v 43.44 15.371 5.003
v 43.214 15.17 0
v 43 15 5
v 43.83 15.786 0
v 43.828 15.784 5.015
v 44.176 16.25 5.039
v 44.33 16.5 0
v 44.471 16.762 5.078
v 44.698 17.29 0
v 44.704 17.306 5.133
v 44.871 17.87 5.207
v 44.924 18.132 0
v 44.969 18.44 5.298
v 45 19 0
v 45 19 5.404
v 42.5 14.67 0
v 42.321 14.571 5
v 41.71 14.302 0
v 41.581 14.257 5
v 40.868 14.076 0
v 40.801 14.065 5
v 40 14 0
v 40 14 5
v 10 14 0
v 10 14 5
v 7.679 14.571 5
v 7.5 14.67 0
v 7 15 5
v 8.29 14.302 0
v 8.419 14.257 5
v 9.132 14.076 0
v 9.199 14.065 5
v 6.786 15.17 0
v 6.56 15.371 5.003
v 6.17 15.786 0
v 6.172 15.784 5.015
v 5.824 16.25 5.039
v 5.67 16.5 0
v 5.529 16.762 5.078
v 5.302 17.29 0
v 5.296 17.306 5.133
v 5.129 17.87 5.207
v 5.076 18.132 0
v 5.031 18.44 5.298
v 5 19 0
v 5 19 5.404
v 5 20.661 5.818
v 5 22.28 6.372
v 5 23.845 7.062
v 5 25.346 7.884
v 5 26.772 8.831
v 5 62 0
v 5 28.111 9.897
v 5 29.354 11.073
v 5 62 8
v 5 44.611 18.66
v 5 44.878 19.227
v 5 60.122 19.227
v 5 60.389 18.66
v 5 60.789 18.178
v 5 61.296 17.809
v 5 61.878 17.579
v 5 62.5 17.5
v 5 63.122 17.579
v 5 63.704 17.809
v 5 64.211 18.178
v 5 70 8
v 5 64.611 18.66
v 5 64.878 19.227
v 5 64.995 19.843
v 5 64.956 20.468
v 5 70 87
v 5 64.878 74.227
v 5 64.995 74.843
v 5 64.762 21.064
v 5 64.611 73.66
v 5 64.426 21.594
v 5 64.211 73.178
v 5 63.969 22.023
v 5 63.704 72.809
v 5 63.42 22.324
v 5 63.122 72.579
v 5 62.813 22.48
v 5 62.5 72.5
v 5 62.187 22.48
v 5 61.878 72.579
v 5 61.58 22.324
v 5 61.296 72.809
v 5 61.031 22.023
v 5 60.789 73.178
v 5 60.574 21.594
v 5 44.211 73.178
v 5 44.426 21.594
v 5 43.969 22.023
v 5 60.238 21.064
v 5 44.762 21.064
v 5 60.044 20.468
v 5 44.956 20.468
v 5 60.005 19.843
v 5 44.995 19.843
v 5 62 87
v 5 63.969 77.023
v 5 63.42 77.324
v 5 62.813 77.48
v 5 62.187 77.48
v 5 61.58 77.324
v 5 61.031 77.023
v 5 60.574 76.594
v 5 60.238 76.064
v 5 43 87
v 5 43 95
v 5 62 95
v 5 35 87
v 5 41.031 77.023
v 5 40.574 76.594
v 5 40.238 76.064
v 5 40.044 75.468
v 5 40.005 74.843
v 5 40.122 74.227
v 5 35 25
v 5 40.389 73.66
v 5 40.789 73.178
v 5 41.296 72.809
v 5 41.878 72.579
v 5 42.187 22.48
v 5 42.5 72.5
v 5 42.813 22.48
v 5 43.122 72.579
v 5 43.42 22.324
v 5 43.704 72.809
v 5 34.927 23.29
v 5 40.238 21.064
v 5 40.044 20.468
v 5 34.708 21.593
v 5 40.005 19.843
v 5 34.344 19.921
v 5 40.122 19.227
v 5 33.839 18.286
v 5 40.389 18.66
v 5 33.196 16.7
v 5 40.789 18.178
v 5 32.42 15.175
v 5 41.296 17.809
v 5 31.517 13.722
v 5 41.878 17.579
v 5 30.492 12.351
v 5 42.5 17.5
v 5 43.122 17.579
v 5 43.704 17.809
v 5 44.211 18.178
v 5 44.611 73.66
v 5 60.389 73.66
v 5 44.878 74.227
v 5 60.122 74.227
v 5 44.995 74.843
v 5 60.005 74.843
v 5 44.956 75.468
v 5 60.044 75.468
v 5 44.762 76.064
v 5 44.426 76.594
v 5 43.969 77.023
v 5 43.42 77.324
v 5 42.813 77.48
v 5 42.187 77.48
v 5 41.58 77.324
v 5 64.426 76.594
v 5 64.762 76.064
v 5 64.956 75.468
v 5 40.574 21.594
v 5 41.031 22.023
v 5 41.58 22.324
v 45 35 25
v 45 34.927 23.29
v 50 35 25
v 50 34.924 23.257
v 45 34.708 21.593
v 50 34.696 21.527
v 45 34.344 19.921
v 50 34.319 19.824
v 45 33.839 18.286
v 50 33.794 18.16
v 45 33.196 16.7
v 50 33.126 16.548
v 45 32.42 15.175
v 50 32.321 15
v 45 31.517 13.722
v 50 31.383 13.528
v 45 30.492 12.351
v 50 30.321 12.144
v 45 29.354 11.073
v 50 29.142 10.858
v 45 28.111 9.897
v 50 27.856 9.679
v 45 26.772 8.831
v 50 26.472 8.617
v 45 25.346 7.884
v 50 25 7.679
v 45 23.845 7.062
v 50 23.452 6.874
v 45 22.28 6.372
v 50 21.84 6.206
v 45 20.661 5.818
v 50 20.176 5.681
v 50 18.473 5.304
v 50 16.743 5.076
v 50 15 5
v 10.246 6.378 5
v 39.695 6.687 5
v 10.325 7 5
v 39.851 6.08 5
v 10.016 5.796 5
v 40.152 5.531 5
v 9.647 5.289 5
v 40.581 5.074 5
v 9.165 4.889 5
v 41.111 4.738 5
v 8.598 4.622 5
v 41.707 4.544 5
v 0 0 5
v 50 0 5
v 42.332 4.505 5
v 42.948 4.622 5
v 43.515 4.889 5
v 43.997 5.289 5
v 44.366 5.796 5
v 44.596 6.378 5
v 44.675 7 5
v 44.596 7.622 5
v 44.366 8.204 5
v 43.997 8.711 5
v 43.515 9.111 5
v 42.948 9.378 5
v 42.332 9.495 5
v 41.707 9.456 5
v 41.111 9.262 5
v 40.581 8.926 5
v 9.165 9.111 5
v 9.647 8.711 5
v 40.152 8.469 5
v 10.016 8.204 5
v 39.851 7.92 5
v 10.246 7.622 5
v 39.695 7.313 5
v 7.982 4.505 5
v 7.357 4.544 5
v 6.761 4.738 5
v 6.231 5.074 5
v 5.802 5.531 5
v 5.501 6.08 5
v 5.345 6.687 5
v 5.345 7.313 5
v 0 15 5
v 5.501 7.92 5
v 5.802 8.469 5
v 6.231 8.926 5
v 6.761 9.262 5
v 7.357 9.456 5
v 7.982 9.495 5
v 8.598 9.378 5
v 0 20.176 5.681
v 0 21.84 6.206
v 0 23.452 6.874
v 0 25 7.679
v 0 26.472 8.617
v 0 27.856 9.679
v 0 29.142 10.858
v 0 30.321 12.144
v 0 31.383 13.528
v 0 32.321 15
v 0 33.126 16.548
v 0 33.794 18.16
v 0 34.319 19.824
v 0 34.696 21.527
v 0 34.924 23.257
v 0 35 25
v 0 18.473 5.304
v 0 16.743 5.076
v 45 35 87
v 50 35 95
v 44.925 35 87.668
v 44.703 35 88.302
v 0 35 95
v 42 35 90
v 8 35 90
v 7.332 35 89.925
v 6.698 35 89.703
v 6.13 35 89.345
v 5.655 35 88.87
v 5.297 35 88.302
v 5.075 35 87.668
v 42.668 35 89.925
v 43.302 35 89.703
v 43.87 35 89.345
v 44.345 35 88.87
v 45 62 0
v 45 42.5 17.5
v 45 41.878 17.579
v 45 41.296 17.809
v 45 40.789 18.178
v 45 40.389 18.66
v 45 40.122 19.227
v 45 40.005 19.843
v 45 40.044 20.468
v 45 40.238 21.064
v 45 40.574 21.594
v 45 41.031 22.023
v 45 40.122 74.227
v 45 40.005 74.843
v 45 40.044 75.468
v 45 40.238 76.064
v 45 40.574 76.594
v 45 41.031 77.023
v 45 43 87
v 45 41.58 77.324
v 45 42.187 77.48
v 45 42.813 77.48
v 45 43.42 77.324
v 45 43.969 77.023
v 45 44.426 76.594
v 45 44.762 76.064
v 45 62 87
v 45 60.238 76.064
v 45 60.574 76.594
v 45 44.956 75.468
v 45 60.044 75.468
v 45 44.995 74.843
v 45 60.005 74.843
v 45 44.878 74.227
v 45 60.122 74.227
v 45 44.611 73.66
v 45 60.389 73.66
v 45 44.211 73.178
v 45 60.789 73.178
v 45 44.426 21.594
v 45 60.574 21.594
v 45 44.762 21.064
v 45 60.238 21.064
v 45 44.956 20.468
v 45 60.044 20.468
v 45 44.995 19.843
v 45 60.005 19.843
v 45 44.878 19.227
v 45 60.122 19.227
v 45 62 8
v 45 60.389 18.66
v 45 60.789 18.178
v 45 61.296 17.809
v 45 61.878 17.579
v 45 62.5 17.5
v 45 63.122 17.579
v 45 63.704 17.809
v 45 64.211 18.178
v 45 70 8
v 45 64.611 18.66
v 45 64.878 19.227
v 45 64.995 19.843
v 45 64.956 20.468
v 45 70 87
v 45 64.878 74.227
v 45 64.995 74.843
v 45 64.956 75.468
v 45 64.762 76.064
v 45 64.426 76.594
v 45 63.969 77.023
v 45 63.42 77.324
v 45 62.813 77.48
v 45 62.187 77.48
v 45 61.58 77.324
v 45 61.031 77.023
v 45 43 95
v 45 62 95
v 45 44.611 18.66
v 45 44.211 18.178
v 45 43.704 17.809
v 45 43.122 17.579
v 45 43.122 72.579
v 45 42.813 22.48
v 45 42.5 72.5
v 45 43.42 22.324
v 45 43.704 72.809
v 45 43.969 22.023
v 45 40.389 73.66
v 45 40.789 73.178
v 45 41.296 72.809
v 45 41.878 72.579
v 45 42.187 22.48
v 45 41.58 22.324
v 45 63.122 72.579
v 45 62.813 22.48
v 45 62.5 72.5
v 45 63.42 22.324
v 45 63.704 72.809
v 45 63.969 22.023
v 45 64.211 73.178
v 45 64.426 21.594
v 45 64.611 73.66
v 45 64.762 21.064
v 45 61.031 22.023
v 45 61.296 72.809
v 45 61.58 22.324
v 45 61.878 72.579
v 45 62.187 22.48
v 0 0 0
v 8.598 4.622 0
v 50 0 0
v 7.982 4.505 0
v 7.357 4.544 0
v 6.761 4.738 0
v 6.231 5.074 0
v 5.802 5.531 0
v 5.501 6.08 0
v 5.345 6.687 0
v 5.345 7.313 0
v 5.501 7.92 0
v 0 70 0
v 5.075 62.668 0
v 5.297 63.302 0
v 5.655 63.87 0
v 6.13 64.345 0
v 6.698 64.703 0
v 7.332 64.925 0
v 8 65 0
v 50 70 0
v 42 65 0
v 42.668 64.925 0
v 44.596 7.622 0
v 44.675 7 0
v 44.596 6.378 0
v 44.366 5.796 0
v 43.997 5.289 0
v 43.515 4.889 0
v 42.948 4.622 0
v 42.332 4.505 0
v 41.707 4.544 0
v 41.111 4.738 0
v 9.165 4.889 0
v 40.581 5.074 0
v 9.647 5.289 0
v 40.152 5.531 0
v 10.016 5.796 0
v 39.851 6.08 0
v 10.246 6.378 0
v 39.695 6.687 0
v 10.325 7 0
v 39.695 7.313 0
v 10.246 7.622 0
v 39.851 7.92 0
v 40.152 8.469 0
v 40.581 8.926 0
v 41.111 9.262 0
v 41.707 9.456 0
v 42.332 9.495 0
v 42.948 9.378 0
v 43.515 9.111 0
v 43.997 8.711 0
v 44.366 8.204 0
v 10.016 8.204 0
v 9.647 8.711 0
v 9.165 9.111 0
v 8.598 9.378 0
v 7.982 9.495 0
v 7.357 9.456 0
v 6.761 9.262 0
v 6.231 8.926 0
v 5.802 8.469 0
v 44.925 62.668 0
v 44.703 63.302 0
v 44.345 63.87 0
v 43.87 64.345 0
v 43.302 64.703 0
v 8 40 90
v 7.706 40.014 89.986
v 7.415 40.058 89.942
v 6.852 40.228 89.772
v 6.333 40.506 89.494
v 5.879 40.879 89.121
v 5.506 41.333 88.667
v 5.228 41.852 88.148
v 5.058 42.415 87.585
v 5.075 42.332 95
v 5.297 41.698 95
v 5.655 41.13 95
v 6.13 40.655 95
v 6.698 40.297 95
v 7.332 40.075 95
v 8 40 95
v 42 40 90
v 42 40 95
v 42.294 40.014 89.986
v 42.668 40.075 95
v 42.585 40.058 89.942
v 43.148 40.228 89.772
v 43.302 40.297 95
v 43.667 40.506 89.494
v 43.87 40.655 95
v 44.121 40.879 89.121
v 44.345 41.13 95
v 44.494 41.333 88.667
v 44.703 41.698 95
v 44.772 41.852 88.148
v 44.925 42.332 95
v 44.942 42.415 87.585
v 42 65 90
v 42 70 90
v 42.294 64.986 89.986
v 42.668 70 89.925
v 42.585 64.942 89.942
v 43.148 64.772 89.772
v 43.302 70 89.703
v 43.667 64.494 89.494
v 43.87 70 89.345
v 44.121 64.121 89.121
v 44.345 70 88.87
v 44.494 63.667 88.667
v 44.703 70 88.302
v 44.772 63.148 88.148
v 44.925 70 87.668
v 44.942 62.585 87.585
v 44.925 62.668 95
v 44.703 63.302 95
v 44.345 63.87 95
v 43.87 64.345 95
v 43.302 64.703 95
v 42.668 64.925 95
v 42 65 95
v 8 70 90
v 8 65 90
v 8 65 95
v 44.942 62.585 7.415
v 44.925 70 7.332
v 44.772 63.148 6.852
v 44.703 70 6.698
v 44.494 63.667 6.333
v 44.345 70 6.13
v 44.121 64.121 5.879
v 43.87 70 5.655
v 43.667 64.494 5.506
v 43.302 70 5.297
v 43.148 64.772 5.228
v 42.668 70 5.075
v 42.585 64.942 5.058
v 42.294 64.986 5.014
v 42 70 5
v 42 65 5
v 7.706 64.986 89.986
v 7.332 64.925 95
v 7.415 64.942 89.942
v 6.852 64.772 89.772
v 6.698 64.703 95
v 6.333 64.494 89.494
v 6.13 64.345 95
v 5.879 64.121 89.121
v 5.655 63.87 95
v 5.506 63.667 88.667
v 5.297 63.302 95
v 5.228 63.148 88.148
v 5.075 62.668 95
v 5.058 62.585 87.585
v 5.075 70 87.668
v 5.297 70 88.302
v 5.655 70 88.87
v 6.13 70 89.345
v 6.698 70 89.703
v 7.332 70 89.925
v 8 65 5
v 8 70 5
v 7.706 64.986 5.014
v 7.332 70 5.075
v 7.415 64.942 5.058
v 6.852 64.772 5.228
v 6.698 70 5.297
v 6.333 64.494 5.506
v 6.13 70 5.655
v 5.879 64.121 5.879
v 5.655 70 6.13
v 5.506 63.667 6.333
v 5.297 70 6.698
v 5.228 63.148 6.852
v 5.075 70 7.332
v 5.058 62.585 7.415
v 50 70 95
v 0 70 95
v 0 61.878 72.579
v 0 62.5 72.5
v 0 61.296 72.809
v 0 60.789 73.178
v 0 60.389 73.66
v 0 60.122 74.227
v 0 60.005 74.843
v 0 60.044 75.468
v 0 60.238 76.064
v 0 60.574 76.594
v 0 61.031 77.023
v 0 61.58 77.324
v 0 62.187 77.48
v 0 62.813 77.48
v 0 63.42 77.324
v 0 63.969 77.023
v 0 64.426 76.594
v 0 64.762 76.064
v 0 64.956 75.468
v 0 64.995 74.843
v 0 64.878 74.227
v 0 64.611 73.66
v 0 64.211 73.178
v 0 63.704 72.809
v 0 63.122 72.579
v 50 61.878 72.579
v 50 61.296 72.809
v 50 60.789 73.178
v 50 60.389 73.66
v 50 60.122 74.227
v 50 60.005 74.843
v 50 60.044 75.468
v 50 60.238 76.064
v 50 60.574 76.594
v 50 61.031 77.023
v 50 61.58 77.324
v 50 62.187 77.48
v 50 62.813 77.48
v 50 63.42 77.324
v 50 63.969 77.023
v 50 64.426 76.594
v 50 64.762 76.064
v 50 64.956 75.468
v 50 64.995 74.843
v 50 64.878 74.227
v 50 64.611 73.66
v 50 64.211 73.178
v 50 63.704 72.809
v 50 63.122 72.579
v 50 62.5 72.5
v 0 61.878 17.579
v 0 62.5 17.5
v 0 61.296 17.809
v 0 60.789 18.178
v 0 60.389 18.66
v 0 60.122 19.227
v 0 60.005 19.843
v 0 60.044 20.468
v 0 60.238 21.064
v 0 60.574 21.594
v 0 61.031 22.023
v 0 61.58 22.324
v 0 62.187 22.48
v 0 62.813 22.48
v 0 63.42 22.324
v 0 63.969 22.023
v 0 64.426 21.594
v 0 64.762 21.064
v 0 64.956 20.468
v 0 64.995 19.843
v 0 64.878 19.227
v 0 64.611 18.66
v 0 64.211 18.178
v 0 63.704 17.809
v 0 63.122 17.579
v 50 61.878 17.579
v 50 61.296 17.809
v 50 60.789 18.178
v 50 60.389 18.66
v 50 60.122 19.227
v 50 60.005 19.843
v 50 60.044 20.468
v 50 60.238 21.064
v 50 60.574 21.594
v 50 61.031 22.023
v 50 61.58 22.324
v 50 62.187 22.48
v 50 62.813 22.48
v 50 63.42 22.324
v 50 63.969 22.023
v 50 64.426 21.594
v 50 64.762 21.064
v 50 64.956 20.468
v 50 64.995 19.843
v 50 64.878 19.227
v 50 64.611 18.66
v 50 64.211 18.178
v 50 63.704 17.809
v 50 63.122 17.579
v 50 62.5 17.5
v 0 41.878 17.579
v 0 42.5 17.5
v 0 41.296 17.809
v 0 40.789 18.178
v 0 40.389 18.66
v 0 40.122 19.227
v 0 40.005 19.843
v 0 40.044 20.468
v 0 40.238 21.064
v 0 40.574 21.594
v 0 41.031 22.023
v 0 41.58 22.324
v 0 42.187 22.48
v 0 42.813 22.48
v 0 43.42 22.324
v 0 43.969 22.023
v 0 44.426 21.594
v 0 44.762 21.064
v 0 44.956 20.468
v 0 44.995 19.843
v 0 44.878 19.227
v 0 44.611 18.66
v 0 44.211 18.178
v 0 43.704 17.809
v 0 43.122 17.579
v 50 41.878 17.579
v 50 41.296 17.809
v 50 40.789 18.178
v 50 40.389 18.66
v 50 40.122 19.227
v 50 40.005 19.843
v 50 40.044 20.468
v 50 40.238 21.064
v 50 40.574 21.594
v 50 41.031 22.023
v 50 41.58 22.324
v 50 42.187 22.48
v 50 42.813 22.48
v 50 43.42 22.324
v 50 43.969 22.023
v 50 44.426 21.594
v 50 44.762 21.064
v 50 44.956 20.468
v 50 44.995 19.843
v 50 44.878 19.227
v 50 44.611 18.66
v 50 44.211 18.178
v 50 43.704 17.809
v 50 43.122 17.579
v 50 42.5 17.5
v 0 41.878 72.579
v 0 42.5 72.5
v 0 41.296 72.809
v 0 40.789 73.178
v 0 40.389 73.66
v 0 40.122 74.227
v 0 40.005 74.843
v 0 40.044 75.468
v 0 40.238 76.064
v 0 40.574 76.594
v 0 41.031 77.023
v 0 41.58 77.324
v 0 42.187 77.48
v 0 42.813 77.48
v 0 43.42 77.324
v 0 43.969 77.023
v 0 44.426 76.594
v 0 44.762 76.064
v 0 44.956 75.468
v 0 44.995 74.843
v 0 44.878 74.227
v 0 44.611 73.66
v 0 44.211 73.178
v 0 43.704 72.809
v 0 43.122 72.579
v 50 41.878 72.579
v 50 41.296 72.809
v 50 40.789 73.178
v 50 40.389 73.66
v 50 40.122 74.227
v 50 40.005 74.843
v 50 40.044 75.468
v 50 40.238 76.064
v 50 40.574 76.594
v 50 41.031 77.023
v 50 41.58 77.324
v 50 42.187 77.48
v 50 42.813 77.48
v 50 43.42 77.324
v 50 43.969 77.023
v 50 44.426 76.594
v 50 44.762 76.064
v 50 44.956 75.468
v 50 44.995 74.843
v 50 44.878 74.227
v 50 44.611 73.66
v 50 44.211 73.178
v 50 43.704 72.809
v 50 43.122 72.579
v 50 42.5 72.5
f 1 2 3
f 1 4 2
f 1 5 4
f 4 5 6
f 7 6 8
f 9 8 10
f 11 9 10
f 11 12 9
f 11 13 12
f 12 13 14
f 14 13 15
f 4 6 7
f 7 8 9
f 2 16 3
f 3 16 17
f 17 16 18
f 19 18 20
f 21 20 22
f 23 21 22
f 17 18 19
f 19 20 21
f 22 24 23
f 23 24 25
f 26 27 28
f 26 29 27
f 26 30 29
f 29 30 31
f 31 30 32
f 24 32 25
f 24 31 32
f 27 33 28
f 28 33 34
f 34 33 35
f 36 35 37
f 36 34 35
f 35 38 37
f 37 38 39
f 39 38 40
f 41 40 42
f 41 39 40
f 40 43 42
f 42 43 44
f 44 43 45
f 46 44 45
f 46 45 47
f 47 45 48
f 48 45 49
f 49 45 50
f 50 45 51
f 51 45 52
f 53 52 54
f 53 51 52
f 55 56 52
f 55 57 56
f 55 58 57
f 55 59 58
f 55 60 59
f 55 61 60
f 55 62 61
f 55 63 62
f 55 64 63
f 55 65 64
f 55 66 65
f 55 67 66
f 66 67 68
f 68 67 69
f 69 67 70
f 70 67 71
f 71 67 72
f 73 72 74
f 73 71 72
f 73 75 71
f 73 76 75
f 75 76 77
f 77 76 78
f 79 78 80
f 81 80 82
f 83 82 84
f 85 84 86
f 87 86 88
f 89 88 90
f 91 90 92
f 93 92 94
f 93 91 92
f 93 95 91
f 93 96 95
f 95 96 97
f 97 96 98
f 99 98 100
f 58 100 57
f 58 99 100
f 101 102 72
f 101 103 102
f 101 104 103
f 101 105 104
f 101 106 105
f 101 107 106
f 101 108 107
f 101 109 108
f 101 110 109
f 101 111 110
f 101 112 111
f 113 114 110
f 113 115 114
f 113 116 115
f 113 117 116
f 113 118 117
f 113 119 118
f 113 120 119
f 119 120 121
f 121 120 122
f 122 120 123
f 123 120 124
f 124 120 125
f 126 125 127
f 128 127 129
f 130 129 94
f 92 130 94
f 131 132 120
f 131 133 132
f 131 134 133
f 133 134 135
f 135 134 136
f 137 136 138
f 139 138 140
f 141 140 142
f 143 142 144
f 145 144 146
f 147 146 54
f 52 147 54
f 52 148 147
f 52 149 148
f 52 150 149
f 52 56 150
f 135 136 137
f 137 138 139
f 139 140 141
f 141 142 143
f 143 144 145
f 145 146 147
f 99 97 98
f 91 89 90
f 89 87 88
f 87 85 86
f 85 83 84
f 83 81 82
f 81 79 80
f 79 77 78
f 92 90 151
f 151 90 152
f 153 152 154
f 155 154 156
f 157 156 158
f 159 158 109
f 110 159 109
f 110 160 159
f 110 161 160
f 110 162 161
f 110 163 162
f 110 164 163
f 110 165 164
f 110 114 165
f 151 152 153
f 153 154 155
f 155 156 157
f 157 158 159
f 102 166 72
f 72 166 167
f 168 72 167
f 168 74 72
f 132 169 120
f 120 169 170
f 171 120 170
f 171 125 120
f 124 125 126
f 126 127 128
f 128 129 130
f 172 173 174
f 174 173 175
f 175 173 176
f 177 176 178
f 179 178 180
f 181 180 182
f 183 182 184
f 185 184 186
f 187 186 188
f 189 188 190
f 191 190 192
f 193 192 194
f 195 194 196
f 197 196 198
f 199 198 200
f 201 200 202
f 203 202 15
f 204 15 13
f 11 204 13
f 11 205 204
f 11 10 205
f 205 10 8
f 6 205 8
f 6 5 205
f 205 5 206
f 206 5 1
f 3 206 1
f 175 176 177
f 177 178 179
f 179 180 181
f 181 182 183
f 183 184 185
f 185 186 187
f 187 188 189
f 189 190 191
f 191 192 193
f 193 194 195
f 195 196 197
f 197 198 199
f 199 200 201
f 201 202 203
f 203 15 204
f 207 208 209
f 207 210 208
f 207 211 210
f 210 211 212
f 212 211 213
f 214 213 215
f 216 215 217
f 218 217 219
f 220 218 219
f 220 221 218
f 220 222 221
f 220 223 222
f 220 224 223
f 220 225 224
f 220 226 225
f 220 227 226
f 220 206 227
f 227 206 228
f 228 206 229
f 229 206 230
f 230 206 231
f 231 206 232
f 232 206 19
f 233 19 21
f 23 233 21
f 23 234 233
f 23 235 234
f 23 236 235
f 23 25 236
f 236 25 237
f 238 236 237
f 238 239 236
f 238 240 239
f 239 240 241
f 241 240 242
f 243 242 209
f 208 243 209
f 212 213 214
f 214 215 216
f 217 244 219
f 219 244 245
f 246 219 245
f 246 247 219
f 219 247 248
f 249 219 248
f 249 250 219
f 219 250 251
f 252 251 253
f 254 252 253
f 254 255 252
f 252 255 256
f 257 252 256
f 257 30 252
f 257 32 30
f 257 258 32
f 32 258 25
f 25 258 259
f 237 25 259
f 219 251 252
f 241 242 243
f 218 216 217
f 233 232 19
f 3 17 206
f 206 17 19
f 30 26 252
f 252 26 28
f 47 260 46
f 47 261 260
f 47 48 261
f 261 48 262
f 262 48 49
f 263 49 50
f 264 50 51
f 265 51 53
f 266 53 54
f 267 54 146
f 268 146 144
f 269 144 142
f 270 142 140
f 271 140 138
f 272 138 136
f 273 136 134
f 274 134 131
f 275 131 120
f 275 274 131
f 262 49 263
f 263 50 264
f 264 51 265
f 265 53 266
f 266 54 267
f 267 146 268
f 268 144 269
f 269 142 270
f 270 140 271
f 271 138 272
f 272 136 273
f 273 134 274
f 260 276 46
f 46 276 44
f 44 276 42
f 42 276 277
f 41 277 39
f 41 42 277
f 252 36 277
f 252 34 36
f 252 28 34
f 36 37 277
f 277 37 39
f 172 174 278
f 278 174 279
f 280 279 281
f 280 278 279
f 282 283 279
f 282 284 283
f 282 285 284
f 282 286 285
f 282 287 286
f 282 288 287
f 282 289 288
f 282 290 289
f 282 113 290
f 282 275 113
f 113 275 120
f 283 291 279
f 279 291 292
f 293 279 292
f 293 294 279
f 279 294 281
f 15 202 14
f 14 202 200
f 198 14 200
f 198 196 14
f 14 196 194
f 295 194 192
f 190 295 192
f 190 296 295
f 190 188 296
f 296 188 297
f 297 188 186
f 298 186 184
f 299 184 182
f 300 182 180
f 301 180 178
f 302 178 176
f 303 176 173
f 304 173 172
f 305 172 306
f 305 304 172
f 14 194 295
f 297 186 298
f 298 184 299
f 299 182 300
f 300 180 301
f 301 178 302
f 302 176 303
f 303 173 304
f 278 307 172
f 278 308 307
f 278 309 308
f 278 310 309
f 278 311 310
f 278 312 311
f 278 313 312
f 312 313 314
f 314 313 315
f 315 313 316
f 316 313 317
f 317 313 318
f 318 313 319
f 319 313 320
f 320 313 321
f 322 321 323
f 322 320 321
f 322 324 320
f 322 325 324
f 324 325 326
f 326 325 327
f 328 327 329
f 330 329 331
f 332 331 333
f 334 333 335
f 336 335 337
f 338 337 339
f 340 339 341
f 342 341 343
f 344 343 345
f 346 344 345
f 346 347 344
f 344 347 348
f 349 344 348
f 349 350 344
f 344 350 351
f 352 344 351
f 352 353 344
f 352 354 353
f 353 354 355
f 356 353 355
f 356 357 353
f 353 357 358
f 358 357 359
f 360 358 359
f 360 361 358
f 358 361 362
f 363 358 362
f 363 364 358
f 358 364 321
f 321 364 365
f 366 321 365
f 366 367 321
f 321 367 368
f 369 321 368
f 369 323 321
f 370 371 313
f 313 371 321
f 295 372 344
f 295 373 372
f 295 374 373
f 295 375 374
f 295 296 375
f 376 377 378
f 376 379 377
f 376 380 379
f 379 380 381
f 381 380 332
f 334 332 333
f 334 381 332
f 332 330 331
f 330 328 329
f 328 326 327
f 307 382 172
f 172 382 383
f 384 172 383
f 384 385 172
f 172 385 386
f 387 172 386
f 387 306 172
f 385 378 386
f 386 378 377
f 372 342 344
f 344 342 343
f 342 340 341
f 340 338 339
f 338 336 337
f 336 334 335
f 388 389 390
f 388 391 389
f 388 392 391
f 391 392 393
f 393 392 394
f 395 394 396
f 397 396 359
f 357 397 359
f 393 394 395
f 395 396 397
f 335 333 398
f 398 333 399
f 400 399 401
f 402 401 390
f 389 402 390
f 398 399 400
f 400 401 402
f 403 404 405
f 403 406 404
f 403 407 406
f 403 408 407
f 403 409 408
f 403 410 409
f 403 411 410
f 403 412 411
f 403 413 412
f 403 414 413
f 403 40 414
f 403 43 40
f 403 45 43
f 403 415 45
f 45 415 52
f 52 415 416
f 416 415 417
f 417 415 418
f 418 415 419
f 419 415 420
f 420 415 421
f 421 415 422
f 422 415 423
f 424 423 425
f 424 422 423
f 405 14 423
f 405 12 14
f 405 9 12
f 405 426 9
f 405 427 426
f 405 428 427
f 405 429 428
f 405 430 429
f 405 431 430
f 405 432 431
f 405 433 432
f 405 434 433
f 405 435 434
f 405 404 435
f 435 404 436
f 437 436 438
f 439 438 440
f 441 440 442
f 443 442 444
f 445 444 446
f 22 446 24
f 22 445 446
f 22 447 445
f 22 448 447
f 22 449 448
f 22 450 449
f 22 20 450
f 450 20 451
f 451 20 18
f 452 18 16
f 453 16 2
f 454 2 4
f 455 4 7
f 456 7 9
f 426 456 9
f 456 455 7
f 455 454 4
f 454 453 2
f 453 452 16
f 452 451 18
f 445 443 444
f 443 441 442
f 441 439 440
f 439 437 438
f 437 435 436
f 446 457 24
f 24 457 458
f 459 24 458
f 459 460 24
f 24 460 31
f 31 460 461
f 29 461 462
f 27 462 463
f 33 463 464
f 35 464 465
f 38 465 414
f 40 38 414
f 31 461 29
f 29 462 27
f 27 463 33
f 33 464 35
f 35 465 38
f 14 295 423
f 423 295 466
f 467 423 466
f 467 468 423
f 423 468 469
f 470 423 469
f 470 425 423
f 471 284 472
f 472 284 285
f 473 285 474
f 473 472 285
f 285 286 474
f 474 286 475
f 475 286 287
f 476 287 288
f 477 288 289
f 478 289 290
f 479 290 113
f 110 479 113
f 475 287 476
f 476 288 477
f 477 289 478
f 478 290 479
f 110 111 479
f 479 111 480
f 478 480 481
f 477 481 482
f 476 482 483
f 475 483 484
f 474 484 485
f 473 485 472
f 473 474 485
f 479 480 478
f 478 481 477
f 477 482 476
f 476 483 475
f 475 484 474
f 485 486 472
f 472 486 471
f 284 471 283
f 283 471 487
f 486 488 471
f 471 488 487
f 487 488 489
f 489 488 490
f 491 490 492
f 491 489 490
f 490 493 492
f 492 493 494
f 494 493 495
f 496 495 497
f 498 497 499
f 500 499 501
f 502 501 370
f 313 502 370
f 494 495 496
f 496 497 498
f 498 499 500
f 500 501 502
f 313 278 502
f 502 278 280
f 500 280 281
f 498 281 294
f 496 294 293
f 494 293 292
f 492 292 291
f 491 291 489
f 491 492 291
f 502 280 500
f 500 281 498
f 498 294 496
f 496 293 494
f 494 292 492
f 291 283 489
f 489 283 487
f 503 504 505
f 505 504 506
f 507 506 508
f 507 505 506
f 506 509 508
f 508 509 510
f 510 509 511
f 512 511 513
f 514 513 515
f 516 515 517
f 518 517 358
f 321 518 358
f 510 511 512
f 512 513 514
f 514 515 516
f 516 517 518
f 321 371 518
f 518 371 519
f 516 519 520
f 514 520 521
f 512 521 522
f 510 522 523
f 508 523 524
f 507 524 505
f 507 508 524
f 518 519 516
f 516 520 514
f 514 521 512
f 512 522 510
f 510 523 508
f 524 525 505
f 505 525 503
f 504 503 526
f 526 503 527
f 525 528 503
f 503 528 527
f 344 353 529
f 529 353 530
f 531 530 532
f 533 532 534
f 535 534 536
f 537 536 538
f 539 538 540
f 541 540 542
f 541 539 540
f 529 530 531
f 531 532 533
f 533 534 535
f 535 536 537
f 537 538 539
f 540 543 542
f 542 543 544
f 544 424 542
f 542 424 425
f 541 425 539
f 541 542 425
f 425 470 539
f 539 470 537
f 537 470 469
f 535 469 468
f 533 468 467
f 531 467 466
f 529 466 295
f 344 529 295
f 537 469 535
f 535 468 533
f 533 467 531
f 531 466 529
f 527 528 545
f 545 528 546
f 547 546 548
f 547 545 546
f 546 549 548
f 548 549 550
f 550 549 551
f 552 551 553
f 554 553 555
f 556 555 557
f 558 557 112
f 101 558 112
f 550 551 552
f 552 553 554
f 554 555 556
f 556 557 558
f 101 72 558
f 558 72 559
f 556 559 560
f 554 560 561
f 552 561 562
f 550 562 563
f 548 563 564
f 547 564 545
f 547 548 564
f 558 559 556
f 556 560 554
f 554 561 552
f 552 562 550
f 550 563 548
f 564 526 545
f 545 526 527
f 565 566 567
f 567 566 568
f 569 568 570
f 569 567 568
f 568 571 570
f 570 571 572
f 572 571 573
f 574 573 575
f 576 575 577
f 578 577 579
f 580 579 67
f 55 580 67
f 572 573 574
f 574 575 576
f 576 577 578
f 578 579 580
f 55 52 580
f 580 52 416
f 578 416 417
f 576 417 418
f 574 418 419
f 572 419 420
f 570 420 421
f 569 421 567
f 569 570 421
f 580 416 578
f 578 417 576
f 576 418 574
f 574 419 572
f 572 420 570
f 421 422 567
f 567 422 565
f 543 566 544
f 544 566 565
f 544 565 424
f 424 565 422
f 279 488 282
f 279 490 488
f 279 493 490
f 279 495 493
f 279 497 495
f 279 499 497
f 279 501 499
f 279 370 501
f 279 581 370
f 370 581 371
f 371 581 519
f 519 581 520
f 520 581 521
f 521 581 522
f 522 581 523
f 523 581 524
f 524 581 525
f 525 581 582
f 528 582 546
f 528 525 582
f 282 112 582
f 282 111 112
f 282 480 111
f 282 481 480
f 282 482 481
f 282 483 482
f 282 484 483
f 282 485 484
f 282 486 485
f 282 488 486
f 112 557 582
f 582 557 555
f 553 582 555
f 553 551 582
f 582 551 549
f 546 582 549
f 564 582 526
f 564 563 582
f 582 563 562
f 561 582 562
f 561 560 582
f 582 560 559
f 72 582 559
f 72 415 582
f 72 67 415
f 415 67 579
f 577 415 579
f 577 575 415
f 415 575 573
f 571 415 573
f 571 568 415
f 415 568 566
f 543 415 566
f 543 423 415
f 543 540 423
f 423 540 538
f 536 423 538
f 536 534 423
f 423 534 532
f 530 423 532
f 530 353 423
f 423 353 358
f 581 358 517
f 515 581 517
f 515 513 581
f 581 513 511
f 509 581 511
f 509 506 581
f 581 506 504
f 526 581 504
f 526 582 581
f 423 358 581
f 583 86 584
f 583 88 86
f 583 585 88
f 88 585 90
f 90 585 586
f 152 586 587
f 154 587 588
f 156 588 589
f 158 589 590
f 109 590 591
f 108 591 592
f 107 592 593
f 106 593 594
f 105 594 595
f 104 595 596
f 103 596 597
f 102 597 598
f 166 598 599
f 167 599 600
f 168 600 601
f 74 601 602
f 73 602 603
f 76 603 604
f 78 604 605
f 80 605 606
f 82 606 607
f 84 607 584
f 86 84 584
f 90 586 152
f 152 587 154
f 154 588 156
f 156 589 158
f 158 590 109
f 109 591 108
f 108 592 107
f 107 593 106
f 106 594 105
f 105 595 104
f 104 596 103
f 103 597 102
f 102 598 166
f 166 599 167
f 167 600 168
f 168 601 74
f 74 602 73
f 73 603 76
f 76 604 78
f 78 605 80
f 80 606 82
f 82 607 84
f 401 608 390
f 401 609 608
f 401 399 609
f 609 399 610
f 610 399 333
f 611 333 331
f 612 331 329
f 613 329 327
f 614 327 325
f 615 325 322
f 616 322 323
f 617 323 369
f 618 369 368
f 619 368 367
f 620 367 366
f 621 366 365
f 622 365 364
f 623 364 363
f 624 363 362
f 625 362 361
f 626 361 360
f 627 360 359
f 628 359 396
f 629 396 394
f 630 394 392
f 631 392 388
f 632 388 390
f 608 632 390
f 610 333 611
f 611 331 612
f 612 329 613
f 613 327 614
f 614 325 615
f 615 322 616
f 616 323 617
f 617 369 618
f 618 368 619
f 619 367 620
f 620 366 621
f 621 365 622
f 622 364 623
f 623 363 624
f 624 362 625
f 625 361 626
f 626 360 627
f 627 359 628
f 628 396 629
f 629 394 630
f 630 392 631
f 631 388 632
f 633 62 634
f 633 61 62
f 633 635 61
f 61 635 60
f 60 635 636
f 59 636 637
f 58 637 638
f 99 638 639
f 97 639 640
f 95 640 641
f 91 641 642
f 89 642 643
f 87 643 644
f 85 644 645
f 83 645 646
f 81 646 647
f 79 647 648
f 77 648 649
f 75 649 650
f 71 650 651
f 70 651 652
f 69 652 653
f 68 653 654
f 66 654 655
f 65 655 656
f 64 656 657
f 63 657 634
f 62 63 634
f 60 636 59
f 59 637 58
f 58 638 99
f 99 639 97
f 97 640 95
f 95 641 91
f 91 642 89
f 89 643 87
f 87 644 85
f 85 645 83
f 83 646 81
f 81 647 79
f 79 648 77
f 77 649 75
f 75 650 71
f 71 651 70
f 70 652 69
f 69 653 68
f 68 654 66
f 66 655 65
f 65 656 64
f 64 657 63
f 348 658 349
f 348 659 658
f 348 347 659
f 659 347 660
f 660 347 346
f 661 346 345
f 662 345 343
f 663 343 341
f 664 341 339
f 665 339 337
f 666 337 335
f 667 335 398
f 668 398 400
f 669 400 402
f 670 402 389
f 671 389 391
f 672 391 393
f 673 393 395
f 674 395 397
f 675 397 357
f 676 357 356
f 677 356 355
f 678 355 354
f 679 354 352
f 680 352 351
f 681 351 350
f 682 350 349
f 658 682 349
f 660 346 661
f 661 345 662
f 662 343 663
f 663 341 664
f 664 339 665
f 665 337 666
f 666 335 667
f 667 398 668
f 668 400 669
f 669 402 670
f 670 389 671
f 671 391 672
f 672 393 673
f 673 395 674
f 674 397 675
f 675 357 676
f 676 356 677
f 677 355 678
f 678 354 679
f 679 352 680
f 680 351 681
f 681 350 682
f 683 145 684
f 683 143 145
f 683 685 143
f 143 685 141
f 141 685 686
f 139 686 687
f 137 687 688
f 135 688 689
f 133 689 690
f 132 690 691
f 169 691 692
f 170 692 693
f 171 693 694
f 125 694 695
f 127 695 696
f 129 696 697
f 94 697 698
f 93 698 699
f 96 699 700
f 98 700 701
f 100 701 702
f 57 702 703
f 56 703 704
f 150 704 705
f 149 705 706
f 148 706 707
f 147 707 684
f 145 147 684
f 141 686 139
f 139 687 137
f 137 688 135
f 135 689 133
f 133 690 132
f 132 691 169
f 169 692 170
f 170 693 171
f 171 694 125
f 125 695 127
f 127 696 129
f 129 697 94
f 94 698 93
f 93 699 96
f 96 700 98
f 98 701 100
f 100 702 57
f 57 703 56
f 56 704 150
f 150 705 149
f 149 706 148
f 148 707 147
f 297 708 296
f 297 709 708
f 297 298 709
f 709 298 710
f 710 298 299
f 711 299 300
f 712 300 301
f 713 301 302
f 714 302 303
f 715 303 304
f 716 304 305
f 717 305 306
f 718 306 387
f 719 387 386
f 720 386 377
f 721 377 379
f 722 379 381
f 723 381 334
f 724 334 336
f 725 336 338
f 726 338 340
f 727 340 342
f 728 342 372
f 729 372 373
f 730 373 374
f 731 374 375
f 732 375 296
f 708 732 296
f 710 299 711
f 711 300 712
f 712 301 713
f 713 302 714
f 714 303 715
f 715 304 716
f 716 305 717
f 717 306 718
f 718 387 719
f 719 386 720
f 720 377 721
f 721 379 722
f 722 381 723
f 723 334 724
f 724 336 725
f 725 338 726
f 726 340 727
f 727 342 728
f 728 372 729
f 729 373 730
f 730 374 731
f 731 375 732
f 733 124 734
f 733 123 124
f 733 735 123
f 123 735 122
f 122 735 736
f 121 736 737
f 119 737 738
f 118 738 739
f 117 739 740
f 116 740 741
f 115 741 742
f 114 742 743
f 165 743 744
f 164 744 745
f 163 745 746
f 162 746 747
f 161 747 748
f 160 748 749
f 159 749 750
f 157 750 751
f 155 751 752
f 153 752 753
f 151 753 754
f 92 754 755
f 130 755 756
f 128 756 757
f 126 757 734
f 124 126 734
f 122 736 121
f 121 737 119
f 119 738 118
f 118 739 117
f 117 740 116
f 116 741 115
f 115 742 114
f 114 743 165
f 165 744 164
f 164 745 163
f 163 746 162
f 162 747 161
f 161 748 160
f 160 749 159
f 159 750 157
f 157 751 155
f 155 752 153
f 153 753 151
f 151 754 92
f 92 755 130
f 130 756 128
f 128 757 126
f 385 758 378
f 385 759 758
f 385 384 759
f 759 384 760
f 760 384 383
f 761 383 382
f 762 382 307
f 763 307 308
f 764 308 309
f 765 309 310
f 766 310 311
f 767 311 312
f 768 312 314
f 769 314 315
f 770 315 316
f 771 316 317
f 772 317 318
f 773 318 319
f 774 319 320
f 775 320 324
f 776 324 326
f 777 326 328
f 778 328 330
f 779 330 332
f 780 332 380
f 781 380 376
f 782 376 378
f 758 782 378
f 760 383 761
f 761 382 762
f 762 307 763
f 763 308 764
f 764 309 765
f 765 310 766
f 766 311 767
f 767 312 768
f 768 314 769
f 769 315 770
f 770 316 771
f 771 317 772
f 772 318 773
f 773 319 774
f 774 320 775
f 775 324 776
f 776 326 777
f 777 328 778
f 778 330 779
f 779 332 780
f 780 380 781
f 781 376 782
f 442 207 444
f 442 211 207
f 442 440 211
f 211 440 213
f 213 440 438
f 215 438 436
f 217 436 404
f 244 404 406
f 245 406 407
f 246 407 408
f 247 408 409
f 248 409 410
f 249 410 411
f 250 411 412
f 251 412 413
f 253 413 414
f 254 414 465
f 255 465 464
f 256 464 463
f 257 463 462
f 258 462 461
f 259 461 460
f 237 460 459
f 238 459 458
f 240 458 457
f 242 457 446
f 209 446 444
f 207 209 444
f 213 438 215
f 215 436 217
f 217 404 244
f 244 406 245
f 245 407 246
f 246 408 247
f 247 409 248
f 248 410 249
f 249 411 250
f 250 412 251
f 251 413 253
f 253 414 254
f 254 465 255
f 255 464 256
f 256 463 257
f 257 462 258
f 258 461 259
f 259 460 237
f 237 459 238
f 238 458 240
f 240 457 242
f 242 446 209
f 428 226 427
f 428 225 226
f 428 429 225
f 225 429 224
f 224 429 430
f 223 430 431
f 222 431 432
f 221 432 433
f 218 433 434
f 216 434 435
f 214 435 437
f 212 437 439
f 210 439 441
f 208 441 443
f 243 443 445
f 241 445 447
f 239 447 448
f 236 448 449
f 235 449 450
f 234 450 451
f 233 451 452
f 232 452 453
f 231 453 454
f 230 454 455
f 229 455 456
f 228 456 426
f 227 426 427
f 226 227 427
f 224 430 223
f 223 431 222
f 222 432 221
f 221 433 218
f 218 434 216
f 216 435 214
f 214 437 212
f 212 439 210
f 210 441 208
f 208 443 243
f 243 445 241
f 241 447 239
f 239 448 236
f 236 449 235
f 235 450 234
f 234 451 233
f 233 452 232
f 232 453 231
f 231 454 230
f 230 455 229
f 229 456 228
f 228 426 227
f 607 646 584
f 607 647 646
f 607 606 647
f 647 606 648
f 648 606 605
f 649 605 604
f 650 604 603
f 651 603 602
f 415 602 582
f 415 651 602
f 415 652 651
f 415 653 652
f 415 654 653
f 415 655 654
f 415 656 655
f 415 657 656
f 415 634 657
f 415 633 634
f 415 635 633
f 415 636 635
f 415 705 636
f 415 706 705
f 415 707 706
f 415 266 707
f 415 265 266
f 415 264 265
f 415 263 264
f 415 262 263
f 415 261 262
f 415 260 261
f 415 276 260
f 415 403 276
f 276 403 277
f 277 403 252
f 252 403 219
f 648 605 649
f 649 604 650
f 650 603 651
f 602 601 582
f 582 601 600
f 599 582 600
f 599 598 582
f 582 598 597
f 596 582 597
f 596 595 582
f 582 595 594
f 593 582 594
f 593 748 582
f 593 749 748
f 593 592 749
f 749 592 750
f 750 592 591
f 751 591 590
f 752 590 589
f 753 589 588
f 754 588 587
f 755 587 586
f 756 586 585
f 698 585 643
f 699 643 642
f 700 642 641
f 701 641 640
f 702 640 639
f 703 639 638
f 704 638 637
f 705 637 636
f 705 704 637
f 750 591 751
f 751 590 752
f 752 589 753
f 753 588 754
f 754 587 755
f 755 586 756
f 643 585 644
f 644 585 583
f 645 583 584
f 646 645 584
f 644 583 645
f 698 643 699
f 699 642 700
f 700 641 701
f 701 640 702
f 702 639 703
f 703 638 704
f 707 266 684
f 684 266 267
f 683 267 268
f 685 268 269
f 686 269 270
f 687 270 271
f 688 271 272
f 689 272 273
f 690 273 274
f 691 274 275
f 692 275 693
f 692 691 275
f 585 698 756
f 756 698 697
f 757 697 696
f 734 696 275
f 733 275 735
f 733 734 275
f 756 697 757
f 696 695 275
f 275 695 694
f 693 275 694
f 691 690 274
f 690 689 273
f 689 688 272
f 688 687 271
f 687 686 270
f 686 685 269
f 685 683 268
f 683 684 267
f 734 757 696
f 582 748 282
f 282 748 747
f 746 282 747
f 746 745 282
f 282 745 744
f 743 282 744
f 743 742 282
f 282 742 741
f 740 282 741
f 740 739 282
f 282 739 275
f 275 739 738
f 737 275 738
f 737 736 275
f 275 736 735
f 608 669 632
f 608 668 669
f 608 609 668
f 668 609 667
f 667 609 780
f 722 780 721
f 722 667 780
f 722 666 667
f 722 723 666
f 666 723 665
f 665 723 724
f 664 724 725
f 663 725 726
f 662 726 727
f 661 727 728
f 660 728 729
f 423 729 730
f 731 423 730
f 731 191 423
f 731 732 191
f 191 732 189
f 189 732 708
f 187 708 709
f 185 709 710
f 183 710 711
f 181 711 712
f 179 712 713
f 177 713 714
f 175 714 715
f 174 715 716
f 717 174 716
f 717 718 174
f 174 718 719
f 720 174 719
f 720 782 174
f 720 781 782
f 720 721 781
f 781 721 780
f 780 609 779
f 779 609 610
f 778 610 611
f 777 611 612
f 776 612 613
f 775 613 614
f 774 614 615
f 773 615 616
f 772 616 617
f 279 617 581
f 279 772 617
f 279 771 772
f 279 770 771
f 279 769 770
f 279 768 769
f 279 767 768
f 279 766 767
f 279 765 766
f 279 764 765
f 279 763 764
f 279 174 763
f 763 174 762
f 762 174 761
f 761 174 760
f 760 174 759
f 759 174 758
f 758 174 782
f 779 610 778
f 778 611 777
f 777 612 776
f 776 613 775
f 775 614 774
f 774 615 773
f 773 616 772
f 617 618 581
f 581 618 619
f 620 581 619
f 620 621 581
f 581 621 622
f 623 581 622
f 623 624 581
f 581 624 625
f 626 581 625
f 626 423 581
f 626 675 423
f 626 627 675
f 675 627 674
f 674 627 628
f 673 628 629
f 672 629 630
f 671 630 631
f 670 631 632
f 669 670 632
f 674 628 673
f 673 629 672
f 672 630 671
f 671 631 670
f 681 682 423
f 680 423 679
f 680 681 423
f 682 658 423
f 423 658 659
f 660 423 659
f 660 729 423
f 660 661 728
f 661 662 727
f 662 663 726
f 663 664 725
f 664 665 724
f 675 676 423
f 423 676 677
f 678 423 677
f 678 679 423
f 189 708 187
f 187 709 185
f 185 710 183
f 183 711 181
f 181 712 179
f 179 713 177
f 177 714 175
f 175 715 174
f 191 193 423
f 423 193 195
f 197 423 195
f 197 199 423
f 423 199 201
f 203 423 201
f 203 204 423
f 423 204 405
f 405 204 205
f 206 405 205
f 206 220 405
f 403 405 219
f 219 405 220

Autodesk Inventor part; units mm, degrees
ref_plane "YZ Plane" through (0, 0, 0) normal (1, 0, 0) x (0, 1, 0)
ref_plane "XZ Plane" through (0, 0, 0) normal (0, 1, 0) x (-1, 0, 0)
ref_plane "XY Plane" through (0, 0, 0) normal (0, 0, 1) x (1, 0, 0)
sketch "Sketch1" plane through (0, 0, 0) normal (0, 0, 1) x (1, 0, 0)
  line L0 (0, 0) -> (50, 0)
  line L1 (50, 0) -> (50, 70)
  line L2 (50, 70) -> (0, 70)
  line L3 (0, 70) -> (0, 0)
  dimension "d0" = 50
  dimension "d1" = 70
extrude "Extrusion1" add sketch "Sketch1" along normal blind 5
sketch "Sketch2" plane through (0, 0, 5) normal (0, 0, 1) x (1, 0, 0)
  circle A0 centre (7.825, 7) radius 2.5
  circle A1 centre (42.175, 7) radius 2.5
  line L0 (0, 0) -> (50, 0) projected
  line L1 (50, 0) -> (50, 70) projected
  line L2 (50, 70) -> (0, 70) projected
  line L3 (0, 70) -> (0, 0) projected
  dimension "d4" = 34.35
  dimension "d5" = 5
  dimension "d6" = 5
  dimension "d7" = 50
  dimension "d8" = 7.825
  dimension "d9" = 7
  dimension "d10" = 7
extrude "Extrusion2" cut sketch "Sketch2" against normal up to next contours A0 | A1
sketch "Sketch3" plane through (0, 0, 5) normal (0, 0, 1) x (1, 0, 0)
  circle A0 centre (7.825, 7) radius 2.5 projected
  circle A1 centre (42.175, 7) radius 2.5 projected
  line L0 (0, 0) -> (50, 0) projected
  line L1 (50, 0) -> (50, 70) projected
  line L2 (50, 70) -> (0, 70) projected
  line L3 (0, 70) -> (0, 0) projected
  line L4 (0, 70) -> (5, 70)
  line L5 (5, 70) -> (5, 35)
  line L6 (5, 35) -> (0, 35)
  line L7 (0, 35) -> (0, 70)
  line L8 (50, 70) -> (45, 70)
  line L9 (45, 70) -> (45, 35)
  line L10 (45, 35) -> (50, 35)
  line L11 (50, 35) -> (50, 70)
  dimension "d13" = 5
  dimension "d14" = 5
  dimension "d15" = 35
extrude "Extrusion3" add sketch "Sketch3" along normal blind 90 contours L3 L2 L5 L6 | L10 L9 L2 L1
sketch "Sketch4" plane through (50, 0, 0) normal (1, 0, 0) x (0, 0, -1)
  line L0 (0, 0) -> (0, 70) projected
  line L1 (0, 70) -> (-95, 70) projected
  line L2 (-95, 35) -> (-95, 70) projected
  line L3 (-5, 35) -> (-95, 35) projected
  line L4 (-5, 0) -> (-5, 35) projected
  line L5 (0, 0) -> (-5, 0) projected
  circle A0 centre (-20, 62.5) radius 2.5
  circle A1 centre (-20, 42.5) radius 2.5
  circle A2 centre (-75, 62.5) radius 2.5
  circle A3 centre (-75, 42.5) radius 2.5
  point P0 (0, 0)
  dimension "d18" = 5
  dimension "d19" = 5
  dimension "d20" = 20
  dimension "d21" = 5
  dimension "d22" = 5
  dimension "d23" = 35
  dimension "d24" = 20
  dimension "d26" = 7.5
  dimension "d27" = 55
  dimension "d28" = 55
  dimension "d31" = 7.5
  dimension "d42" = 20
  dimension "d43" = 20
extrude "Extrusion4" cut sketch "Sketch4" against normal through all contours A0 | A1 | A2 | A3
sketch "Sketch5" plane through (5, 35, 5) normal (1, 0, 0) x (0, 0, -1)
  circle A0 centre (-70, 27.5) radius 2.5 projected
  circle A1 centre (-15, 27.5) radius 2.5 projected
  circle A2 centre (-15, 7.5) radius 2.5 projected
  circle A3 centre (-70, 7.5) radius 2.5 projected
  line L0 (0, 35) -> (0, 0) projected
  line L1 (0, 35) -> (-90, 35) projected
  line L2 (-90, 0) -> (-90, 35) projected
  line L3 (0, 0) -> (-90, 0) projected
  line L4 (0, 0) -> (-90, 0) projected
  line L5 (-90, 35) -> (-85, 35)
  line L6 (-85, 35) -> (-85, 0)
  line L7 (-85, 0) -> (-90, 0)
  line L8 (-90, 0) -> (-90, 35)
  point P0 (5, -35)
  dimension "d34" = 5
extrude "Extrusion5" add sketch "Sketch5" along normal up to next contours L6 L3 L2 L1
sketch "Sketch6" plane through (0, 0, 95) normal (0, 0, 1) x (1, 0, 0)
  line L0 (45, 35) -> (45, 70) projected
  line L1 (45, 70) -> (5, 70) projected
  line L2 (5, 70) -> (5, 35) projected
  line L3 (5, 35) -> (0, 35) projected
  line L4 (0, 35) -> (0, 0) projected
  line L5 (0, 0) -> (50, 0) projected
  line L6 (50, 0) -> (50, 35) projected
  line L7 (50, 35) -> (45, 35) projected
  circle A0 centre (7.825, 7) radius 2.5 projected
  circle A1 centre (42.175, 7) radius 2.5 projected
  line L8 (50, 70) -> (0, 70) projected
  line L9 (0, 70) -> (0, 35) projected
  line L10 (0, 35) -> (50, 35) projected
  line L11 (50, 35) -> (50, 70) projected
  line L12 (5, 65) -> (45, 65)
  line L13 (45, 65) -> (45, 40)
  line L14 (45, 40) -> (5, 40)
  line L15 (5, 40) -> (5, 65)
  dimension "d37" = 5
  dimension "d38" = 5
extrude "Extrusion6" cut sketch "Sketch6" against normal through all contours L14 L2 L12 L0
fillet "Fillet1" radius 3 16 edges at (45, 37.5, 5) (5, 37.5, 5) (5, 65, 2.5) (5, 67.5, 5) (5, 65, 92.5) (5, 67.5, 90) (45, 67.5, 5) (45, 65, 2.5) (45, 65, 92.5) (45, 67.5, 90) (45, 40, 2.5) (5, 40, 2.5) (45, 40, 92.5) (45, 37.5, 90) (5, 40, 92.5) (5, 37.5, 90)
sketch "Sketch7" plane through (0, 0, 0) normal (0, 0, -1) x (-1, 0, 0)
  line L0 (-42, 40) -> (-8, 40) projected
  arc A0 (-8, 40) -> (-5, 43) centre (-8, 43) ccw projected
  line L1 (-5, 43) -> (-5, 62) projected
  arc A1 (-5, 62) -> (-8, 65) centre (-8, 62) ccw projected
  line L2 (-8, 65) -> (-42, 65) projected
  arc A2 (-42, 65) -> (-45, 62) centre (-42, 62) ccw projected
  line L3 (-45, 62) -> (-45, 43) projected
  arc A3 (-45, 43) -> (-42, 40) centre (-42, 43) ccw projected
  line L4 (-50, 70) -> (0, 70) projected
  line L5 (0, 70) -> (0, 35) projected
  line L6 (0, 35) -> (-50, 35) projected
  line L7 (-50, 35) -> (-50, 70) projected
  line L8 (-8, 40) -> (-42, 40) projected
  arc A4 (-45, 43) -> (-42, 40) centre (-42, 43) ccw projected
  line L9 (-45, 43) -> (-45, 62) projected
  arc A5 (-42, 65) -> (-45, 62) centre (-42, 62) ccw projected
  line L10 (-42, 65) -> (-8, 65) projected
  arc A6 (-5, 62) -> (-8, 65) centre (-8, 62) ccw projected
  line L11 (-5, 62) -> (-5, 43) projected
  arc A7 (-8, 40) -> (-5, 43) centre (-8, 43) ccw projected
  circle A8 centre (-7.825, 7) radius 2.5 projected
  circle A9 centre (-42.175, 7) radius 2.5 projected
  line L12 (0, 0) -> (-50, 0) projected
  line L13 (0, 70) -> (0, 0) projected
  line L14 (-50, 70) -> (0, 70) projected
  line L15 (-50, 0) -> (-50, 70) projected
  line L16 (-5, 43) -> (-5, 62) projected
  line L17 (-5, 43) -> (-45, 43)
  line L18 (-45, 43) -> (-45, 14)
  line L19 (-45, 14) -> (-5, 14)
  line L20 (-5, 14) -> (-5, 43)
  line L21 (-45, 43) -> (-45, 62) projected
  dimension "d44" = 7
  dimension "d45" = 7
extrude "Extrusion7" cut sketch "Sketch7" against normal up to next contours L0 A0 L20 L6 L18 A3 | L6 L20 L19 L18
fillet "Fillet2" radius 20 1 edges at (2.5, 35, 5)
fillet "Fillet3" radius 5 2 edges at (5, 14, 2.5) (45, 14, 2.5)
equation "\"d8\" = -0.5 * d4 + 0.5 * d7"
equation "\"d10\" = d9"
equation "\"d13\" = d14"
equation "\"d26\" = -0.5 * d24 + 0.5 * d23"
equation "\"d28\" = d27"
equation "\"d31\" = d26"
equation "\"d43\" = d42"
equation "\"d45\" = d44"
properties part number "tubing_alignment_arm[2]"
